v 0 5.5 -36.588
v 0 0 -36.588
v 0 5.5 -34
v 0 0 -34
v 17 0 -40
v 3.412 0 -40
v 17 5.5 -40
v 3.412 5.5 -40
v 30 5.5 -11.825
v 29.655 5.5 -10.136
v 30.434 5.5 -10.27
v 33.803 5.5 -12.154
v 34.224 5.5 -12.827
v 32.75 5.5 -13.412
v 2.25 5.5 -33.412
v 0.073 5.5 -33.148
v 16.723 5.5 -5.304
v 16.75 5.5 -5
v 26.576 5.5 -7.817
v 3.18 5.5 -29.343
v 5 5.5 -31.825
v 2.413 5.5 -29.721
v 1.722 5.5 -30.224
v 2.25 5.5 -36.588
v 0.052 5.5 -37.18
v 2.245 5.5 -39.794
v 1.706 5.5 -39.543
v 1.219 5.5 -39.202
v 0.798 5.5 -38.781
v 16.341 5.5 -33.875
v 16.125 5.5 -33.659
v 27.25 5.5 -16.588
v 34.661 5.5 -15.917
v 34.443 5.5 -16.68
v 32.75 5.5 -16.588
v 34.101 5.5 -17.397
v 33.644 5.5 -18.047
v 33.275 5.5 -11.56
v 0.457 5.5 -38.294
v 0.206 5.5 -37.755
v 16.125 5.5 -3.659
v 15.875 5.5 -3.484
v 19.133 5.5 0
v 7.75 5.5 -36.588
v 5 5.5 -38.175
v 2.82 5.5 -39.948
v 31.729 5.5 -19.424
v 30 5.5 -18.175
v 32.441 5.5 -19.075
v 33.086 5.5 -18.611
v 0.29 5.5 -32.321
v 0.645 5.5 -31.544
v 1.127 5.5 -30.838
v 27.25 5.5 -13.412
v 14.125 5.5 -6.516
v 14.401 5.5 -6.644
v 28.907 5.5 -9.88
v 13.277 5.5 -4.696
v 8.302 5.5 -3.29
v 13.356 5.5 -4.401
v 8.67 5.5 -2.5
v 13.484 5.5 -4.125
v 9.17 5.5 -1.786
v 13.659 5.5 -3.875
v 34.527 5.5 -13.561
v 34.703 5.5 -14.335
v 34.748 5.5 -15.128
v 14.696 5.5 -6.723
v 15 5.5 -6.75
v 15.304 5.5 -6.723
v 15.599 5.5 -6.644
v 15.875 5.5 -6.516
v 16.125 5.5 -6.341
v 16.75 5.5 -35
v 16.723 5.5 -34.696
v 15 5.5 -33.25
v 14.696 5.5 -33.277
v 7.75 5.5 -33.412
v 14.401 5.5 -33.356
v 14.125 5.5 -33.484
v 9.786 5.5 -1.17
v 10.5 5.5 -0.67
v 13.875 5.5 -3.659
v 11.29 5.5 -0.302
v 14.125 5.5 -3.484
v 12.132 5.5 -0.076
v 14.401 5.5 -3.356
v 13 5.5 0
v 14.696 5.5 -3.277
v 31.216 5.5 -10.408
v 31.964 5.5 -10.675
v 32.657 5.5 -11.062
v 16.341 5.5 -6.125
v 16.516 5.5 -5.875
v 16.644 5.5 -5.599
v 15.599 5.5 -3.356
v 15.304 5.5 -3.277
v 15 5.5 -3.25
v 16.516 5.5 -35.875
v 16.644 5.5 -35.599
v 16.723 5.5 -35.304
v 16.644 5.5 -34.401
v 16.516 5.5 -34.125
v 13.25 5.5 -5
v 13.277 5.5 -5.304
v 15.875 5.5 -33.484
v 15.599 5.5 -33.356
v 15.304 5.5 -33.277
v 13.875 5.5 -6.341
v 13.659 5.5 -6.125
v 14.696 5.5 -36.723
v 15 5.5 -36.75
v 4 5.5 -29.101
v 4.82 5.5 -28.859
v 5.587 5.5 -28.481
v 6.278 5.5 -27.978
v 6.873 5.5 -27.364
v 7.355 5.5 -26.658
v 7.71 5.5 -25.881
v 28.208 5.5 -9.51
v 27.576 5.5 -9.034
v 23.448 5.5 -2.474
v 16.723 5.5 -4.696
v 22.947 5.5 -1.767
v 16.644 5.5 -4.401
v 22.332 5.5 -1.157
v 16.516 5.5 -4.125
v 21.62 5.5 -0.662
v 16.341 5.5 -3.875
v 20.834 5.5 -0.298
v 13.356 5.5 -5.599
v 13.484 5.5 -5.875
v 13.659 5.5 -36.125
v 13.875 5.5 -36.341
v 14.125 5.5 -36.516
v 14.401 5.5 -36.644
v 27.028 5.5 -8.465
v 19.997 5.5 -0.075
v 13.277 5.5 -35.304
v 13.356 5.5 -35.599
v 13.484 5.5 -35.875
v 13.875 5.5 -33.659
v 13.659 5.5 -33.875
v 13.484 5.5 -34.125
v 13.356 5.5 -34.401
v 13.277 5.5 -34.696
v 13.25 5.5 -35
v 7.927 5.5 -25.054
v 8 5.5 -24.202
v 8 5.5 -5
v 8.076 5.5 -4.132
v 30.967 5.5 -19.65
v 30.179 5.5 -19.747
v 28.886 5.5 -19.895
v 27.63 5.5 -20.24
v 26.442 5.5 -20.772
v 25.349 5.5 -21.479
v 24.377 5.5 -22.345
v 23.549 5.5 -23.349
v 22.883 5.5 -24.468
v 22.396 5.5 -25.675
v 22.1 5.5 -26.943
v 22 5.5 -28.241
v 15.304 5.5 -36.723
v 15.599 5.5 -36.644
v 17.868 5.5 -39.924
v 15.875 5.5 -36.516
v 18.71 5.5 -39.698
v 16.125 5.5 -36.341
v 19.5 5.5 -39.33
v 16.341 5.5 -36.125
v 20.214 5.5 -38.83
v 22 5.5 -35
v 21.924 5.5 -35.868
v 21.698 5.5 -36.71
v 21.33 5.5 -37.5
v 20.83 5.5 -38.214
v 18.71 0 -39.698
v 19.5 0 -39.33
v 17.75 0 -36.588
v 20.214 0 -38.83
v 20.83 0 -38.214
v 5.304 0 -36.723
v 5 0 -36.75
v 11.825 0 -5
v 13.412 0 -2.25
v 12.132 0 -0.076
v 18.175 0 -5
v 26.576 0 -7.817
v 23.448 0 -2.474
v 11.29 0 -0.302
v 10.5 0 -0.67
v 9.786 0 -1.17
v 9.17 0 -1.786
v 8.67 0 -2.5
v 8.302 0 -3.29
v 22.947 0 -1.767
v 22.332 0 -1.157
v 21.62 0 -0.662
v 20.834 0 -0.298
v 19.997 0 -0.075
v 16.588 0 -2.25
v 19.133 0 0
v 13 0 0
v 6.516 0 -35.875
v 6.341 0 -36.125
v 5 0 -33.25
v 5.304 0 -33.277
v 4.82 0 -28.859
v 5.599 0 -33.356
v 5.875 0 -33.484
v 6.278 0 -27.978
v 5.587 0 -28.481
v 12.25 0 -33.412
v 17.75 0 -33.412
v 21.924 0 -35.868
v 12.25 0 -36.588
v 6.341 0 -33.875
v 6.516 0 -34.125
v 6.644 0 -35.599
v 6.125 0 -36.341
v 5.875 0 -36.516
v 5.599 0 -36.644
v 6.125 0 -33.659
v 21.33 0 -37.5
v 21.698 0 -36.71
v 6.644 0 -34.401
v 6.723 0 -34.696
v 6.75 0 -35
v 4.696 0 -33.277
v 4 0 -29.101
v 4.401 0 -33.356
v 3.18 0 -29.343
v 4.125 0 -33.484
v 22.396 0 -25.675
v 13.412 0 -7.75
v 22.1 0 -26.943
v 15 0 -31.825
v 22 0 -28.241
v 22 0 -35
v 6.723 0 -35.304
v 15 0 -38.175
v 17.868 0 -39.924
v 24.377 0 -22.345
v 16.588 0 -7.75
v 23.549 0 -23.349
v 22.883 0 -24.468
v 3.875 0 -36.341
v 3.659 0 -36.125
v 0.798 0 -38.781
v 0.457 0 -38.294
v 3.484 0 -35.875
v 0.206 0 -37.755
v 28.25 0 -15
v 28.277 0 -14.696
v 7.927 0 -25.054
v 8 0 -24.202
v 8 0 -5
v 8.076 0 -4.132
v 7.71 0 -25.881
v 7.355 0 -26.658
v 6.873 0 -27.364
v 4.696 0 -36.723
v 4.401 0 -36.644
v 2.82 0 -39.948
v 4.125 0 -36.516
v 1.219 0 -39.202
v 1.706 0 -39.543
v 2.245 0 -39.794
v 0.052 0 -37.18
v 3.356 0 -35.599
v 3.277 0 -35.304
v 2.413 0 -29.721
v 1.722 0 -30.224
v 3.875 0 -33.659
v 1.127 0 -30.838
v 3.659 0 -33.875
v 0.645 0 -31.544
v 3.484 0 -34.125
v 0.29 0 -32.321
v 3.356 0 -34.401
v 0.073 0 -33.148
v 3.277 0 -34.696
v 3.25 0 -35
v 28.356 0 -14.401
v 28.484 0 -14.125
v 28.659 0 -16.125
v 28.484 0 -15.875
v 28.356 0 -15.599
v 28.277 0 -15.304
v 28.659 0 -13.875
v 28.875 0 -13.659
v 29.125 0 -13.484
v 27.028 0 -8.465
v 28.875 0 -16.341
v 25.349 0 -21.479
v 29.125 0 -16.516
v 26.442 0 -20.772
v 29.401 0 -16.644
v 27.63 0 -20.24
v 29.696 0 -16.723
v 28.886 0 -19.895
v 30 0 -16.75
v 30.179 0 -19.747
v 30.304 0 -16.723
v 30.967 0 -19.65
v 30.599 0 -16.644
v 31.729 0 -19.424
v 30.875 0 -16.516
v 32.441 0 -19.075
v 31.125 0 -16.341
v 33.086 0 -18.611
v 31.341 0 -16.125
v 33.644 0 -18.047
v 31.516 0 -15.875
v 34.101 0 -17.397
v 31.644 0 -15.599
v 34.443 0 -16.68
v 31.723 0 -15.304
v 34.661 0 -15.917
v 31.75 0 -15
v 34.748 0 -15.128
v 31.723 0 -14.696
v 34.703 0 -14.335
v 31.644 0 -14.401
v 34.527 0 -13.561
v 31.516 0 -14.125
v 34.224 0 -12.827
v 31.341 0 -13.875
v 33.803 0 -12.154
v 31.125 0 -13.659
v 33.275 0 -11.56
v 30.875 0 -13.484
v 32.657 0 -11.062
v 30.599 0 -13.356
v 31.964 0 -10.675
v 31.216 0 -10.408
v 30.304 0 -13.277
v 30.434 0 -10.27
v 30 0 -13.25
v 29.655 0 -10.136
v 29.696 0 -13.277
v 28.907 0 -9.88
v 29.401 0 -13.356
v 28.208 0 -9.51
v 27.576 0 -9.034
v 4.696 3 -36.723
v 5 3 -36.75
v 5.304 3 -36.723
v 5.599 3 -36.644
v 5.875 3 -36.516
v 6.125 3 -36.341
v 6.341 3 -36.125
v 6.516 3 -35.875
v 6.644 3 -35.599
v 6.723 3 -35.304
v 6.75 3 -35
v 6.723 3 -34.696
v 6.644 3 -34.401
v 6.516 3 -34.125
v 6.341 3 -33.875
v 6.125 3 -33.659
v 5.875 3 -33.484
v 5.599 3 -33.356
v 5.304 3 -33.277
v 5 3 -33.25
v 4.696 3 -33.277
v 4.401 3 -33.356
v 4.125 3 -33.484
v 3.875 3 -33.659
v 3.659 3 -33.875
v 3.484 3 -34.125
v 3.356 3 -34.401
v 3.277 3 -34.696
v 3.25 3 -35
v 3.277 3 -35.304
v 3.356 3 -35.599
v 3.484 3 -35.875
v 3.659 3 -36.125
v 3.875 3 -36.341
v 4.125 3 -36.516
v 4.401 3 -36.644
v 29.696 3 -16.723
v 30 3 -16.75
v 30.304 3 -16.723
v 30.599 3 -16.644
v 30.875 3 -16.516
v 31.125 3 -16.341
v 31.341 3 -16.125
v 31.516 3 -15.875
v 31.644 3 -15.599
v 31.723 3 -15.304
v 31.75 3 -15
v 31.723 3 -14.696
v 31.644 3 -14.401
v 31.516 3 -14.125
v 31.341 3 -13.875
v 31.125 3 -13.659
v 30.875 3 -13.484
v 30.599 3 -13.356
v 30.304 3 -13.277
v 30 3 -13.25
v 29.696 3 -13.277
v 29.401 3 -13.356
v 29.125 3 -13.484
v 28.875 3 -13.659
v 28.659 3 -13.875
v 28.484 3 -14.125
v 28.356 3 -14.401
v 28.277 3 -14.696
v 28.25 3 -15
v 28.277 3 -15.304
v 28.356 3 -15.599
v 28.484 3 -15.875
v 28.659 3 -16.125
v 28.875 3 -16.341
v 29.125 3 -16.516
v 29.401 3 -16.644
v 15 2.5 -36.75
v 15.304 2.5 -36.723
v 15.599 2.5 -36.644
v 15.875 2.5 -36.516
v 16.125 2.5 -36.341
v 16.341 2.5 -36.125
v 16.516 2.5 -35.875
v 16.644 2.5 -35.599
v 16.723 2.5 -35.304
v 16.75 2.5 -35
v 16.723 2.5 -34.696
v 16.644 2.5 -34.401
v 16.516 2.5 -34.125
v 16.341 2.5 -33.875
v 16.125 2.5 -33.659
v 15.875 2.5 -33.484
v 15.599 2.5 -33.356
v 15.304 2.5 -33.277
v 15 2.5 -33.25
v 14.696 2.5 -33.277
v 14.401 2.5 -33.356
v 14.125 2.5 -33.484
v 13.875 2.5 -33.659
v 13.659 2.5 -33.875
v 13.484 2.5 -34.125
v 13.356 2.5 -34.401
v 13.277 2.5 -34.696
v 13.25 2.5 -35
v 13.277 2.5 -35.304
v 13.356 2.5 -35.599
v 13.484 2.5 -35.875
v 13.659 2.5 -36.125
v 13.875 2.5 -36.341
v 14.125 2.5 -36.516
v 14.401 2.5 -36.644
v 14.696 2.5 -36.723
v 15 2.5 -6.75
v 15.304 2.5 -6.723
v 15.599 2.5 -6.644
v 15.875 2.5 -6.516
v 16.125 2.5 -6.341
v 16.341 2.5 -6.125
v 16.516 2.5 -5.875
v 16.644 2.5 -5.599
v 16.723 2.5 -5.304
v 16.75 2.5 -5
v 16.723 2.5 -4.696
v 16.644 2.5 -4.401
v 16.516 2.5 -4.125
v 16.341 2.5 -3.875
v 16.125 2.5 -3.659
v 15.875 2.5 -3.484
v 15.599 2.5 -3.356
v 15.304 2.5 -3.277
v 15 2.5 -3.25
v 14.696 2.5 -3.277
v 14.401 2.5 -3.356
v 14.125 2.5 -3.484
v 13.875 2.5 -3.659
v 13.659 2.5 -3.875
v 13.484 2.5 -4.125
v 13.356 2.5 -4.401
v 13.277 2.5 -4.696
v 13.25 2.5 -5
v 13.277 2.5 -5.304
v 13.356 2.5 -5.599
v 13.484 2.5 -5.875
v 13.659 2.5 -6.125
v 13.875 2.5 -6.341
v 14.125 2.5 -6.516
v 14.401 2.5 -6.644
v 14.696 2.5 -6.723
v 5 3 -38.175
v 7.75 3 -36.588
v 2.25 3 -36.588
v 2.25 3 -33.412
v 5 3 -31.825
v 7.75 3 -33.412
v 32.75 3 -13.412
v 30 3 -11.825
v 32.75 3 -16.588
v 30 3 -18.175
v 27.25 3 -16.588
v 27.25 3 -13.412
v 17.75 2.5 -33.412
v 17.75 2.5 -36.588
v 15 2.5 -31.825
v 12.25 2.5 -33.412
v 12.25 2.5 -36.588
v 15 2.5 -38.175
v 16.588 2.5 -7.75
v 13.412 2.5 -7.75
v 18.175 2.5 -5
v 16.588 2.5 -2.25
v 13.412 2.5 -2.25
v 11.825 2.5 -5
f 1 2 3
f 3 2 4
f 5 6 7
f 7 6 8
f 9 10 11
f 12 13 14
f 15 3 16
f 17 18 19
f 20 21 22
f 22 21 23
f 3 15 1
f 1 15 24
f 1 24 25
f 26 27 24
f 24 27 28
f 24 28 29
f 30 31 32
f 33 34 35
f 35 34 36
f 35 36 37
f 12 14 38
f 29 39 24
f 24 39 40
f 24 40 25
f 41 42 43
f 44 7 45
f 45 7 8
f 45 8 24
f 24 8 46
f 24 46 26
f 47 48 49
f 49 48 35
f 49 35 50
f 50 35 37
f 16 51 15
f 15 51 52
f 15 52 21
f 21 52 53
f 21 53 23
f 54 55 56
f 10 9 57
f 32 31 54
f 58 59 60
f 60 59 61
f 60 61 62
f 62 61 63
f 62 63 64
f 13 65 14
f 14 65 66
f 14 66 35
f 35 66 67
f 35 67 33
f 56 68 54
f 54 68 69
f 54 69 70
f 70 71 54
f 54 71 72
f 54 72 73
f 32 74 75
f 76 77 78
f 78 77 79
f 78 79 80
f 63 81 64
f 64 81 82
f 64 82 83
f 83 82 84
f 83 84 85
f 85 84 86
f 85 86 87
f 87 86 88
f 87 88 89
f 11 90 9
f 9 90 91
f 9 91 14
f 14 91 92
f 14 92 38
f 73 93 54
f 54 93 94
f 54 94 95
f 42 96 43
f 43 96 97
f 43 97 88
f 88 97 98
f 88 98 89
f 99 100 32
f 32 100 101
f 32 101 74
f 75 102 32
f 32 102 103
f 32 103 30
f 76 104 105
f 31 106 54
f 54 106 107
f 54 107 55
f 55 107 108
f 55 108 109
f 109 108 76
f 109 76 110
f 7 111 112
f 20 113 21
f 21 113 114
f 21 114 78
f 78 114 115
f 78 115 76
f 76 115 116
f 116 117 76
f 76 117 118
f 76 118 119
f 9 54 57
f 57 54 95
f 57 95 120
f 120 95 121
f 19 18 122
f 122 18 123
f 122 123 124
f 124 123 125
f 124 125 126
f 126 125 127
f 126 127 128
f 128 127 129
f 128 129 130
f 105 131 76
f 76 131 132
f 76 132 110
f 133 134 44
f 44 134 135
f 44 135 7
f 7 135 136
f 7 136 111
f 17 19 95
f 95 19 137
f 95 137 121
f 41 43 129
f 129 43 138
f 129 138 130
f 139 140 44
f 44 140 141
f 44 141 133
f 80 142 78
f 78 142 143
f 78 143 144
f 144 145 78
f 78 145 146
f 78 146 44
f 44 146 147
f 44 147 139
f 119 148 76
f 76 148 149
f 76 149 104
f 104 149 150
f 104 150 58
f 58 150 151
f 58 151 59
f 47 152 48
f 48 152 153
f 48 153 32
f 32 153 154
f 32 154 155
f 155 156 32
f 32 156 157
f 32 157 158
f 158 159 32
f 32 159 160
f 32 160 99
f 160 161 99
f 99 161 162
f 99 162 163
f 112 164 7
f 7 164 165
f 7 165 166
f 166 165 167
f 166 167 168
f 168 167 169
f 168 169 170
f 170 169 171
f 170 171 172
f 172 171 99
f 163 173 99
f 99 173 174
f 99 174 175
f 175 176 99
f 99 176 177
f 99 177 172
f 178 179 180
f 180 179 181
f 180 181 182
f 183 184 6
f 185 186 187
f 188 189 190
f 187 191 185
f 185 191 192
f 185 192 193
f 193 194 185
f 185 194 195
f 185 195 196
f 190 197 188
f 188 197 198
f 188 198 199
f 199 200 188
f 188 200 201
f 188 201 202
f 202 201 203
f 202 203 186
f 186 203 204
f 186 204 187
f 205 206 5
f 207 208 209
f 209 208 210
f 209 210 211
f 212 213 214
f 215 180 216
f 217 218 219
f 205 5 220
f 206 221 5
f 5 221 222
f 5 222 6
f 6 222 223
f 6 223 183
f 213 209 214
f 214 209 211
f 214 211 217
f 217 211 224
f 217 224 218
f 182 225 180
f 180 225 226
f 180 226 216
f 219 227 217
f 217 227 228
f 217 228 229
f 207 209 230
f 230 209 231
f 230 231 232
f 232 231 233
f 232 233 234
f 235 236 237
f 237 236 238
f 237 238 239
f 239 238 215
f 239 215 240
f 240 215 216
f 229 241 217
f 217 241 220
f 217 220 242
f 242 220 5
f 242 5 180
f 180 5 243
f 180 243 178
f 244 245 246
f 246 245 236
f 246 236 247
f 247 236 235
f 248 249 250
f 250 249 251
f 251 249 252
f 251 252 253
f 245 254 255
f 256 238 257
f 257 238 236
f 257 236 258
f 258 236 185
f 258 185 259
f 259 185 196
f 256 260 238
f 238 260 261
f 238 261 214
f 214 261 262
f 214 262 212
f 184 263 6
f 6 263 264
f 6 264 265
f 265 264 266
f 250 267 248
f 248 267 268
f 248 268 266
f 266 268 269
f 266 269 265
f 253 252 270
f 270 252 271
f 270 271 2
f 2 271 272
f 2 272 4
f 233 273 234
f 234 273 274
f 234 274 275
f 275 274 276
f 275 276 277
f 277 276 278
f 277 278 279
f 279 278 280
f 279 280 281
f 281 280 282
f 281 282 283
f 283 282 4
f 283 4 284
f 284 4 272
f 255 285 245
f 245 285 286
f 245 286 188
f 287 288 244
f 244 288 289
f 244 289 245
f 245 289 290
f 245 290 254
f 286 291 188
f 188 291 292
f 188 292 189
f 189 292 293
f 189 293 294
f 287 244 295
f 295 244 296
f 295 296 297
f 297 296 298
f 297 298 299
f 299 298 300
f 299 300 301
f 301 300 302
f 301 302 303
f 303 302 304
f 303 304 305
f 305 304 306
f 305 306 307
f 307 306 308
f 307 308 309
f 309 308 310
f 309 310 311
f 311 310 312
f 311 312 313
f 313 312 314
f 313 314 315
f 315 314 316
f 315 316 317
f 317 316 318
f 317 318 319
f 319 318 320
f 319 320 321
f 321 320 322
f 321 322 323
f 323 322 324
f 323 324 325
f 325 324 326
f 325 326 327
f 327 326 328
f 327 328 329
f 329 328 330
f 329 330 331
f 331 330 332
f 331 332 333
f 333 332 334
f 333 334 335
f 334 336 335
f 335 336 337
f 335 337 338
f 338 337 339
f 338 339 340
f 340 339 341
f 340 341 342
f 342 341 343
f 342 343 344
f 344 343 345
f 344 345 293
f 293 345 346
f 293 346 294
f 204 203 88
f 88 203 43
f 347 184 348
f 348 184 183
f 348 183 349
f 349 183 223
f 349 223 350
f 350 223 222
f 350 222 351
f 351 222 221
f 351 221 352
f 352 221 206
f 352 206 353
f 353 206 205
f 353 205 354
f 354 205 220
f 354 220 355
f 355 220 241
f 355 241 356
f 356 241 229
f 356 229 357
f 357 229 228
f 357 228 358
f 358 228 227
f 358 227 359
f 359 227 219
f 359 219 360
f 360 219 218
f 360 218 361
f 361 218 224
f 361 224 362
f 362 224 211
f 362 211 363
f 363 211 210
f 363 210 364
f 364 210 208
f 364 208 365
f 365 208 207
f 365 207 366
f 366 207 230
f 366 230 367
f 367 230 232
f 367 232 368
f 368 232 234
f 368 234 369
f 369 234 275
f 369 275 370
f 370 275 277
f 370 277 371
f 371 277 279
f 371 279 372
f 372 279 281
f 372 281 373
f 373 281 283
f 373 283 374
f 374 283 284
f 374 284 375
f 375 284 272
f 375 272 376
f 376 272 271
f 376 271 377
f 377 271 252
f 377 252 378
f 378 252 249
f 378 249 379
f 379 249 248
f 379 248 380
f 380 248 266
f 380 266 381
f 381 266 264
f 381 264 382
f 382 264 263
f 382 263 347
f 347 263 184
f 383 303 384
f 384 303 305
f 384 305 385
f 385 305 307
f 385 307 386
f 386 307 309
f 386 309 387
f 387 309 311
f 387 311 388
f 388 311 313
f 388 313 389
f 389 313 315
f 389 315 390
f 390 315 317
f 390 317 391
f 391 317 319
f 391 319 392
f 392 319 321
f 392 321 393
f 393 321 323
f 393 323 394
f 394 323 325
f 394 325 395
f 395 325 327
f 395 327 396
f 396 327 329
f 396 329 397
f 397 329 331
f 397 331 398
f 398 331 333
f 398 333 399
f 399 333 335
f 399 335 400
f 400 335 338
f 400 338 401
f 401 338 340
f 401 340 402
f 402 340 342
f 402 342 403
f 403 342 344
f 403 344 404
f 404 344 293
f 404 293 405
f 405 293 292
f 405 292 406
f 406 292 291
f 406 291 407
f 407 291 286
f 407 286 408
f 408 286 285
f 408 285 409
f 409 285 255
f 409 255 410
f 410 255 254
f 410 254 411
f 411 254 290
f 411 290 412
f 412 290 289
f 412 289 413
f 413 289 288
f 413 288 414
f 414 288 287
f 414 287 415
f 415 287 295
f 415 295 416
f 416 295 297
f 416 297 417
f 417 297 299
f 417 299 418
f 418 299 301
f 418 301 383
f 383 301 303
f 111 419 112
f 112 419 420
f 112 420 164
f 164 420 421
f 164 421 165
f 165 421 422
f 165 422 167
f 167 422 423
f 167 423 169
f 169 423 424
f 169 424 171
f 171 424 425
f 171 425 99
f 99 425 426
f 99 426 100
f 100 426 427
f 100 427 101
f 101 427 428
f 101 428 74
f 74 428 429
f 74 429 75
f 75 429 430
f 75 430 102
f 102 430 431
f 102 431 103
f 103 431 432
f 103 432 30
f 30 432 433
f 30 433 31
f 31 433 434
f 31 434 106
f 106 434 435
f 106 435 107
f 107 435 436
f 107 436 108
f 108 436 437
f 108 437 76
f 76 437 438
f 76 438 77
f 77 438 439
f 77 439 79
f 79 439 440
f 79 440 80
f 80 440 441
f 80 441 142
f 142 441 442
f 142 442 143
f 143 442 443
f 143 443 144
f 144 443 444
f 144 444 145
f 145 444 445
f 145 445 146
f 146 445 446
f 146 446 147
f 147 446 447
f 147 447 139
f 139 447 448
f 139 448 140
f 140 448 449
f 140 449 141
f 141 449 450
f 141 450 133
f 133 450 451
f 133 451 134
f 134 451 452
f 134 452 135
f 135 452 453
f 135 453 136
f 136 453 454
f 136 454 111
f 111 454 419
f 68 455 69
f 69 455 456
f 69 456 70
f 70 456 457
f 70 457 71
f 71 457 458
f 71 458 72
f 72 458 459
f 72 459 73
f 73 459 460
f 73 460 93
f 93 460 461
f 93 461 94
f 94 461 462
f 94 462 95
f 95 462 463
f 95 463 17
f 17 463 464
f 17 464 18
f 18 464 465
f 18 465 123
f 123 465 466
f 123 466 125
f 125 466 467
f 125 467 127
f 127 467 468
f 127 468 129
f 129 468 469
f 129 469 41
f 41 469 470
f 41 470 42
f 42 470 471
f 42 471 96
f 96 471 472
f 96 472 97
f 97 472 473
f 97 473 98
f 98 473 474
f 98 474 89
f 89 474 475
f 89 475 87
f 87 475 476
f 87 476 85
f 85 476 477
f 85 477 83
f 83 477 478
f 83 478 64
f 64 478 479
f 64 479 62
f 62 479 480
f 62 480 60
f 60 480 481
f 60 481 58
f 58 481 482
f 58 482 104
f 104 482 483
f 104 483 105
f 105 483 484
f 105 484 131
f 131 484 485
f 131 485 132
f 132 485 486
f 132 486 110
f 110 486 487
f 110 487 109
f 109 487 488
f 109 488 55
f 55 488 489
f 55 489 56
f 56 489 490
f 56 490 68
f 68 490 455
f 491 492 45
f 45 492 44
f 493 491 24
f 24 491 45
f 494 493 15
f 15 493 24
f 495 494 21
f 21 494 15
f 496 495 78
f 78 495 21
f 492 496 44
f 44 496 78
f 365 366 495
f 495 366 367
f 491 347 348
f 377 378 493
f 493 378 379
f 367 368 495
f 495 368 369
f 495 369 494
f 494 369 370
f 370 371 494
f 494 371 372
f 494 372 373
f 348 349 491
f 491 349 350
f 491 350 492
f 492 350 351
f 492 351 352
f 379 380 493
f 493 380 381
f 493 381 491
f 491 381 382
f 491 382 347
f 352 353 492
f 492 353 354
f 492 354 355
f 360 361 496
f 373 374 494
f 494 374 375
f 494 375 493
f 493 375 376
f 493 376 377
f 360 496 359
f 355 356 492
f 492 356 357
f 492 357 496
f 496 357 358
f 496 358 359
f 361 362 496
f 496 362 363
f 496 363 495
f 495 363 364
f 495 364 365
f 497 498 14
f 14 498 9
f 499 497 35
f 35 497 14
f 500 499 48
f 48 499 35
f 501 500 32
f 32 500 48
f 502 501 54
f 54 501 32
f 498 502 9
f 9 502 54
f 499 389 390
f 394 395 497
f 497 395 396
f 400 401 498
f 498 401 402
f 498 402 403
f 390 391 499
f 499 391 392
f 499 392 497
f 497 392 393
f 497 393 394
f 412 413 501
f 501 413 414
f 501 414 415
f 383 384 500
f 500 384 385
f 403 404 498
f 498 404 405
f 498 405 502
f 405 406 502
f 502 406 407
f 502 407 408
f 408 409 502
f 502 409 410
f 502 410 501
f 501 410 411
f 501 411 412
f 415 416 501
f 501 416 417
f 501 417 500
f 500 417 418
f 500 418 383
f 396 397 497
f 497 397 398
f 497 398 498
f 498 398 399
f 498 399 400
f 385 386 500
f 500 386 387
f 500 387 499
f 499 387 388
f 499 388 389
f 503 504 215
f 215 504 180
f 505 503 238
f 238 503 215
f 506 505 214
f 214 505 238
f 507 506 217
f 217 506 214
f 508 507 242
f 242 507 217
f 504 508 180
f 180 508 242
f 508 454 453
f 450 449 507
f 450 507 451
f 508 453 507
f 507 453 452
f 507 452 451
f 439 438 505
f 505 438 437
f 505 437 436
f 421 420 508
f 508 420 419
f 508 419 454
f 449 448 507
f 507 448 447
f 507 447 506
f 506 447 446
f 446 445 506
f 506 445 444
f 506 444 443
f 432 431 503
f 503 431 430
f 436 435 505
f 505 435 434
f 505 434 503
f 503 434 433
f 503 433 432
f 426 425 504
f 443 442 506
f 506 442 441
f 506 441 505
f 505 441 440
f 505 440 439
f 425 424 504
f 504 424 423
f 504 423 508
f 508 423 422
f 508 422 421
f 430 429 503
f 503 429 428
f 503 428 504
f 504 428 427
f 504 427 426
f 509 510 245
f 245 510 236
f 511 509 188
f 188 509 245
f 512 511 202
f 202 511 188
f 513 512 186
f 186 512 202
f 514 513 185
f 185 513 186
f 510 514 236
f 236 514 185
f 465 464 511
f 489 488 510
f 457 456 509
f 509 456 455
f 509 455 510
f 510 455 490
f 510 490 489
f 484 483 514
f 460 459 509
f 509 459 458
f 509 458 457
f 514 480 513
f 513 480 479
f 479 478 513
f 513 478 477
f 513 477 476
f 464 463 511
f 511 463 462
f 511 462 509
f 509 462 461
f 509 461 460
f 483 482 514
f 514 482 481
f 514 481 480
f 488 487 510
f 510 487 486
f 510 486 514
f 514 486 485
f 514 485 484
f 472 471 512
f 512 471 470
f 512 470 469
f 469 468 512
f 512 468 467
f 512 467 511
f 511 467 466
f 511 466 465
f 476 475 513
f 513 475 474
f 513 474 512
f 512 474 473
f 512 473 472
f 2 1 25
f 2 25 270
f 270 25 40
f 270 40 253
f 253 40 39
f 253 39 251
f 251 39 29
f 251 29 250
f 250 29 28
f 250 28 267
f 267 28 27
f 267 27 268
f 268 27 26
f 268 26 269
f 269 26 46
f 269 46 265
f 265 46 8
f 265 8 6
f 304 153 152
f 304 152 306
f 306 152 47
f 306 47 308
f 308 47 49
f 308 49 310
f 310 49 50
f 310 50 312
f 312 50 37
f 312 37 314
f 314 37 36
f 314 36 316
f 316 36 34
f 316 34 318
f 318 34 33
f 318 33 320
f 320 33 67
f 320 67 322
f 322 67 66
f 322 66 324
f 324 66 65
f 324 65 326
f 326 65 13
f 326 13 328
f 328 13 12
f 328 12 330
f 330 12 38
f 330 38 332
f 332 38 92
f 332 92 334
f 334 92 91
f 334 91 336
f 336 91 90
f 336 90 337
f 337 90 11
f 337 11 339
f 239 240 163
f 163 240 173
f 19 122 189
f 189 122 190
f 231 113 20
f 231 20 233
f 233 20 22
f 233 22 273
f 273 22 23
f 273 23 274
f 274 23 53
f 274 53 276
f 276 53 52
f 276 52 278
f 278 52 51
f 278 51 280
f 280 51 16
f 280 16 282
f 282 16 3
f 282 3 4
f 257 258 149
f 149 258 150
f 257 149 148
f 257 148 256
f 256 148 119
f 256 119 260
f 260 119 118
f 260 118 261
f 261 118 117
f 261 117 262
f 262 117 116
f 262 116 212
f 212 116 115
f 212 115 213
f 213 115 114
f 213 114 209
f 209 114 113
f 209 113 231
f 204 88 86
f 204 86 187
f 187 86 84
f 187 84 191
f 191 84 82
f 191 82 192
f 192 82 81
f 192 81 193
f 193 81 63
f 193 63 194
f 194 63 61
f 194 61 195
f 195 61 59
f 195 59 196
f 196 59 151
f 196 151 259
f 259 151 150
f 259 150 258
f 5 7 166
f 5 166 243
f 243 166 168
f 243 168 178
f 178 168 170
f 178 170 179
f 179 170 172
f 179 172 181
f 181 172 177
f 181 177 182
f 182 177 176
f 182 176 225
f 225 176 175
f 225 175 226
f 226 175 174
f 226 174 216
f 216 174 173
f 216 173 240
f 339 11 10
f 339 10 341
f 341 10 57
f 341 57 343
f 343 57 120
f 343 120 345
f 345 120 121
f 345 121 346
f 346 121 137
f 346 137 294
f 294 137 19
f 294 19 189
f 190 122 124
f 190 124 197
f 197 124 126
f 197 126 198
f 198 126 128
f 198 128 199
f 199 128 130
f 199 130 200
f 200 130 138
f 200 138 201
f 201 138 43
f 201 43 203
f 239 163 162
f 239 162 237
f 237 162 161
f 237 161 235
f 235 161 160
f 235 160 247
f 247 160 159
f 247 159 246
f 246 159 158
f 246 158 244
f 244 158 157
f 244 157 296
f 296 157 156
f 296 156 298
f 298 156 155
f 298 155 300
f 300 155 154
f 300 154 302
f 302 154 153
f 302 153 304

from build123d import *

# Parameters (mm, degrees)
SKETCH2_W           = 35
SKETCH2_H           = 40
SKETCH2_R           = 1.75
BOSS_EXTRUDE2_DEPTH = 5.5
CUT_EXTRUDE1_REACH  = 10.5
CUT_EXTRUDE1_START  = -3
CUT_EXTRUDE2_START  = -3
CUT_EXTRUDE2_DEPTH  = 10
CUT_EXTRUDE3_DEPTH  = 6.5
FILLET3_R           = 5
FILLET4_R           = 8.5


with BuildPart() as part:
    # Sketch2 → Boss-Extrude2 (new body)
    with BuildSketch(Plane(origin=(0, 0, 0), x_dir=(1, 0, 0), z_dir=(0, 1, 0))):
        with Locations((17.5, 20)):
            Rectangle(SKETCH2_W, SKETCH2_H)
        with Locations((5, 35)):
            Circle(SKETCH2_R, mode=Mode.SUBTRACT)
        with Locations((30, 15)):
            Circle(SKETCH2_R, mode=Mode.SUBTRACT)
        with Locations((15, 35)):
            Circle(SKETCH2_R, mode=Mode.SUBTRACT)
        with Locations((15, 5)):
            Circle(SKETCH2_R, mode=Mode.SUBTRACT)
    extrude(amount=BOSS_EXTRUDE2_DEPTH)

    # Sketch3 → Cut-Extrude1 (cut, up to next)
    with BuildSketch(Plane.XZ.offset(CUT_EXTRUDE1_START), mode=Mode.PRIVATE) as cut_extrude1_sk1:
        Polygon((7.75, -36.58771324), (7.75, -33.41228676), (5, -31.824573519), (2.25, -33.41228676), (2.25, -36.58771324), (5, -38.175426481), align=None)
    cut_extrude1_tool1 = extrude(cut_extrude1_sk1.sketch, amount=-CUT_EXTRUDE1_REACH, mode=Mode.PRIVATE) & part.part
    add(cut_extrude1_tool1.solids().sort_by_distance((5, 3, -35))[0], mode=Mode.SUBTRACT)
    # Sketch3 → Cut-Extrude1 (cut, up to next)
    with BuildSketch(Plane.XZ.offset(CUT_EXTRUDE1_START), mode=Mode.PRIVATE) as cut_extrude1_sk2:
        Polygon((30, -11.824573519), (27.25, -13.41228676), (27.25, -16.58771324), (30, -18.175426481), (32.75, -16.58771324), (32.75, -13.41228676), align=None)
    cut_extrude1_tool2 = extrude(cut_extrude1_sk2.sketch, amount=-CUT_EXTRUDE1_REACH, mode=Mode.PRIVATE) & part.part
    add(cut_extrude1_tool2.solids().sort_by_distance((30, 3, -15))[0], mode=Mode.SUBTRACT)

    # Sketch4 → Cut-Extrude2 (cut)
    with BuildSketch(Plane(origin=(0, 5.5, 0), x_dir=(1, 0, 0), z_dir=(0, 1, 0)).offset(CUT_EXTRUDE2_START)):
        Polygon((17.75, 36.58771324), (15, 38.175426481), (12.25, 36.58771324), (12.25, 33.41228676), (15, 31.824573519), (17.75, 33.41228676), align=None)
        Polygon((13.41228676, 7.75), (11.824573519, 5), (13.41228676, 2.25), (16.58771324, 2.25), (18.175426481, 5), (16.58771324, 7.75), align=None)
    extrude(amount=-CUT_EXTRUDE2_DEPTH, mode=Mode.SUBTRACT)

    # Sketch5 → Cut-Extrude3 (cut, through all)
    with BuildSketch(Plane(origin=(0, 5.5, 0), x_dir=(1, 0, 0), z_dir=(0, 1, 0))):
        with BuildLine():
            Line((0, 36.58771324), (0, 40))
            Line((0, 40), (3.41228676, 40))
            ThreePointArc((3.41228676, 40), (0.999435653, 39.000564347), (0, 36.58771324))
        make_face()
        with BuildLine():
            Line((30, 19.75), (22, 19.75))
            Line((22, 19.75), (22, 40))
            Line((22, 40), (35, 40))
            Line((35, 40), (35, 0))
            Line((35, 0), (22, 0))
            Line((22, 0), (28, 10.25))
            Line((28, 10.25), (30, 10.25))
            ThreePointArc((30, 10.25), (34.75, 15), (30, 19.75))
        make_face()
        with BuildLine():
            Line((0, 34), (0, 0))
            Line((0, 0), (8, 0))
            Line((8, 0), (8, 29))
            Line((8, 29), (5, 29))
            ThreePointArc((5, 29), (1.464466094, 30.464466094), (0, 34))
        make_face()
    extrude(amount=-CUT_EXTRUDE3_DEPTH, mode=Mode.SUBTRACT)

    # Fillet3
    fillet3_edges = [part.edges().sort_by_distance(p)[0] for p in [
        (28, 2.75, -10.25),
        (22, 2.75, 0),
        (22, 2.75, -40),
        (8, 2.75, -29),
        (8, 2.75, 0),
    ]]
    fillet(fillet3_edges, radius=FILLET3_R)

    # Fillet4
    fillet4_edges = [part.edges().sort_by_distance(p)[0] for p in [
        (22, 2.75, -19.75),
    ]]
    fillet(fillet4_edges, radius=FILLET4_R)


solid = part.part
